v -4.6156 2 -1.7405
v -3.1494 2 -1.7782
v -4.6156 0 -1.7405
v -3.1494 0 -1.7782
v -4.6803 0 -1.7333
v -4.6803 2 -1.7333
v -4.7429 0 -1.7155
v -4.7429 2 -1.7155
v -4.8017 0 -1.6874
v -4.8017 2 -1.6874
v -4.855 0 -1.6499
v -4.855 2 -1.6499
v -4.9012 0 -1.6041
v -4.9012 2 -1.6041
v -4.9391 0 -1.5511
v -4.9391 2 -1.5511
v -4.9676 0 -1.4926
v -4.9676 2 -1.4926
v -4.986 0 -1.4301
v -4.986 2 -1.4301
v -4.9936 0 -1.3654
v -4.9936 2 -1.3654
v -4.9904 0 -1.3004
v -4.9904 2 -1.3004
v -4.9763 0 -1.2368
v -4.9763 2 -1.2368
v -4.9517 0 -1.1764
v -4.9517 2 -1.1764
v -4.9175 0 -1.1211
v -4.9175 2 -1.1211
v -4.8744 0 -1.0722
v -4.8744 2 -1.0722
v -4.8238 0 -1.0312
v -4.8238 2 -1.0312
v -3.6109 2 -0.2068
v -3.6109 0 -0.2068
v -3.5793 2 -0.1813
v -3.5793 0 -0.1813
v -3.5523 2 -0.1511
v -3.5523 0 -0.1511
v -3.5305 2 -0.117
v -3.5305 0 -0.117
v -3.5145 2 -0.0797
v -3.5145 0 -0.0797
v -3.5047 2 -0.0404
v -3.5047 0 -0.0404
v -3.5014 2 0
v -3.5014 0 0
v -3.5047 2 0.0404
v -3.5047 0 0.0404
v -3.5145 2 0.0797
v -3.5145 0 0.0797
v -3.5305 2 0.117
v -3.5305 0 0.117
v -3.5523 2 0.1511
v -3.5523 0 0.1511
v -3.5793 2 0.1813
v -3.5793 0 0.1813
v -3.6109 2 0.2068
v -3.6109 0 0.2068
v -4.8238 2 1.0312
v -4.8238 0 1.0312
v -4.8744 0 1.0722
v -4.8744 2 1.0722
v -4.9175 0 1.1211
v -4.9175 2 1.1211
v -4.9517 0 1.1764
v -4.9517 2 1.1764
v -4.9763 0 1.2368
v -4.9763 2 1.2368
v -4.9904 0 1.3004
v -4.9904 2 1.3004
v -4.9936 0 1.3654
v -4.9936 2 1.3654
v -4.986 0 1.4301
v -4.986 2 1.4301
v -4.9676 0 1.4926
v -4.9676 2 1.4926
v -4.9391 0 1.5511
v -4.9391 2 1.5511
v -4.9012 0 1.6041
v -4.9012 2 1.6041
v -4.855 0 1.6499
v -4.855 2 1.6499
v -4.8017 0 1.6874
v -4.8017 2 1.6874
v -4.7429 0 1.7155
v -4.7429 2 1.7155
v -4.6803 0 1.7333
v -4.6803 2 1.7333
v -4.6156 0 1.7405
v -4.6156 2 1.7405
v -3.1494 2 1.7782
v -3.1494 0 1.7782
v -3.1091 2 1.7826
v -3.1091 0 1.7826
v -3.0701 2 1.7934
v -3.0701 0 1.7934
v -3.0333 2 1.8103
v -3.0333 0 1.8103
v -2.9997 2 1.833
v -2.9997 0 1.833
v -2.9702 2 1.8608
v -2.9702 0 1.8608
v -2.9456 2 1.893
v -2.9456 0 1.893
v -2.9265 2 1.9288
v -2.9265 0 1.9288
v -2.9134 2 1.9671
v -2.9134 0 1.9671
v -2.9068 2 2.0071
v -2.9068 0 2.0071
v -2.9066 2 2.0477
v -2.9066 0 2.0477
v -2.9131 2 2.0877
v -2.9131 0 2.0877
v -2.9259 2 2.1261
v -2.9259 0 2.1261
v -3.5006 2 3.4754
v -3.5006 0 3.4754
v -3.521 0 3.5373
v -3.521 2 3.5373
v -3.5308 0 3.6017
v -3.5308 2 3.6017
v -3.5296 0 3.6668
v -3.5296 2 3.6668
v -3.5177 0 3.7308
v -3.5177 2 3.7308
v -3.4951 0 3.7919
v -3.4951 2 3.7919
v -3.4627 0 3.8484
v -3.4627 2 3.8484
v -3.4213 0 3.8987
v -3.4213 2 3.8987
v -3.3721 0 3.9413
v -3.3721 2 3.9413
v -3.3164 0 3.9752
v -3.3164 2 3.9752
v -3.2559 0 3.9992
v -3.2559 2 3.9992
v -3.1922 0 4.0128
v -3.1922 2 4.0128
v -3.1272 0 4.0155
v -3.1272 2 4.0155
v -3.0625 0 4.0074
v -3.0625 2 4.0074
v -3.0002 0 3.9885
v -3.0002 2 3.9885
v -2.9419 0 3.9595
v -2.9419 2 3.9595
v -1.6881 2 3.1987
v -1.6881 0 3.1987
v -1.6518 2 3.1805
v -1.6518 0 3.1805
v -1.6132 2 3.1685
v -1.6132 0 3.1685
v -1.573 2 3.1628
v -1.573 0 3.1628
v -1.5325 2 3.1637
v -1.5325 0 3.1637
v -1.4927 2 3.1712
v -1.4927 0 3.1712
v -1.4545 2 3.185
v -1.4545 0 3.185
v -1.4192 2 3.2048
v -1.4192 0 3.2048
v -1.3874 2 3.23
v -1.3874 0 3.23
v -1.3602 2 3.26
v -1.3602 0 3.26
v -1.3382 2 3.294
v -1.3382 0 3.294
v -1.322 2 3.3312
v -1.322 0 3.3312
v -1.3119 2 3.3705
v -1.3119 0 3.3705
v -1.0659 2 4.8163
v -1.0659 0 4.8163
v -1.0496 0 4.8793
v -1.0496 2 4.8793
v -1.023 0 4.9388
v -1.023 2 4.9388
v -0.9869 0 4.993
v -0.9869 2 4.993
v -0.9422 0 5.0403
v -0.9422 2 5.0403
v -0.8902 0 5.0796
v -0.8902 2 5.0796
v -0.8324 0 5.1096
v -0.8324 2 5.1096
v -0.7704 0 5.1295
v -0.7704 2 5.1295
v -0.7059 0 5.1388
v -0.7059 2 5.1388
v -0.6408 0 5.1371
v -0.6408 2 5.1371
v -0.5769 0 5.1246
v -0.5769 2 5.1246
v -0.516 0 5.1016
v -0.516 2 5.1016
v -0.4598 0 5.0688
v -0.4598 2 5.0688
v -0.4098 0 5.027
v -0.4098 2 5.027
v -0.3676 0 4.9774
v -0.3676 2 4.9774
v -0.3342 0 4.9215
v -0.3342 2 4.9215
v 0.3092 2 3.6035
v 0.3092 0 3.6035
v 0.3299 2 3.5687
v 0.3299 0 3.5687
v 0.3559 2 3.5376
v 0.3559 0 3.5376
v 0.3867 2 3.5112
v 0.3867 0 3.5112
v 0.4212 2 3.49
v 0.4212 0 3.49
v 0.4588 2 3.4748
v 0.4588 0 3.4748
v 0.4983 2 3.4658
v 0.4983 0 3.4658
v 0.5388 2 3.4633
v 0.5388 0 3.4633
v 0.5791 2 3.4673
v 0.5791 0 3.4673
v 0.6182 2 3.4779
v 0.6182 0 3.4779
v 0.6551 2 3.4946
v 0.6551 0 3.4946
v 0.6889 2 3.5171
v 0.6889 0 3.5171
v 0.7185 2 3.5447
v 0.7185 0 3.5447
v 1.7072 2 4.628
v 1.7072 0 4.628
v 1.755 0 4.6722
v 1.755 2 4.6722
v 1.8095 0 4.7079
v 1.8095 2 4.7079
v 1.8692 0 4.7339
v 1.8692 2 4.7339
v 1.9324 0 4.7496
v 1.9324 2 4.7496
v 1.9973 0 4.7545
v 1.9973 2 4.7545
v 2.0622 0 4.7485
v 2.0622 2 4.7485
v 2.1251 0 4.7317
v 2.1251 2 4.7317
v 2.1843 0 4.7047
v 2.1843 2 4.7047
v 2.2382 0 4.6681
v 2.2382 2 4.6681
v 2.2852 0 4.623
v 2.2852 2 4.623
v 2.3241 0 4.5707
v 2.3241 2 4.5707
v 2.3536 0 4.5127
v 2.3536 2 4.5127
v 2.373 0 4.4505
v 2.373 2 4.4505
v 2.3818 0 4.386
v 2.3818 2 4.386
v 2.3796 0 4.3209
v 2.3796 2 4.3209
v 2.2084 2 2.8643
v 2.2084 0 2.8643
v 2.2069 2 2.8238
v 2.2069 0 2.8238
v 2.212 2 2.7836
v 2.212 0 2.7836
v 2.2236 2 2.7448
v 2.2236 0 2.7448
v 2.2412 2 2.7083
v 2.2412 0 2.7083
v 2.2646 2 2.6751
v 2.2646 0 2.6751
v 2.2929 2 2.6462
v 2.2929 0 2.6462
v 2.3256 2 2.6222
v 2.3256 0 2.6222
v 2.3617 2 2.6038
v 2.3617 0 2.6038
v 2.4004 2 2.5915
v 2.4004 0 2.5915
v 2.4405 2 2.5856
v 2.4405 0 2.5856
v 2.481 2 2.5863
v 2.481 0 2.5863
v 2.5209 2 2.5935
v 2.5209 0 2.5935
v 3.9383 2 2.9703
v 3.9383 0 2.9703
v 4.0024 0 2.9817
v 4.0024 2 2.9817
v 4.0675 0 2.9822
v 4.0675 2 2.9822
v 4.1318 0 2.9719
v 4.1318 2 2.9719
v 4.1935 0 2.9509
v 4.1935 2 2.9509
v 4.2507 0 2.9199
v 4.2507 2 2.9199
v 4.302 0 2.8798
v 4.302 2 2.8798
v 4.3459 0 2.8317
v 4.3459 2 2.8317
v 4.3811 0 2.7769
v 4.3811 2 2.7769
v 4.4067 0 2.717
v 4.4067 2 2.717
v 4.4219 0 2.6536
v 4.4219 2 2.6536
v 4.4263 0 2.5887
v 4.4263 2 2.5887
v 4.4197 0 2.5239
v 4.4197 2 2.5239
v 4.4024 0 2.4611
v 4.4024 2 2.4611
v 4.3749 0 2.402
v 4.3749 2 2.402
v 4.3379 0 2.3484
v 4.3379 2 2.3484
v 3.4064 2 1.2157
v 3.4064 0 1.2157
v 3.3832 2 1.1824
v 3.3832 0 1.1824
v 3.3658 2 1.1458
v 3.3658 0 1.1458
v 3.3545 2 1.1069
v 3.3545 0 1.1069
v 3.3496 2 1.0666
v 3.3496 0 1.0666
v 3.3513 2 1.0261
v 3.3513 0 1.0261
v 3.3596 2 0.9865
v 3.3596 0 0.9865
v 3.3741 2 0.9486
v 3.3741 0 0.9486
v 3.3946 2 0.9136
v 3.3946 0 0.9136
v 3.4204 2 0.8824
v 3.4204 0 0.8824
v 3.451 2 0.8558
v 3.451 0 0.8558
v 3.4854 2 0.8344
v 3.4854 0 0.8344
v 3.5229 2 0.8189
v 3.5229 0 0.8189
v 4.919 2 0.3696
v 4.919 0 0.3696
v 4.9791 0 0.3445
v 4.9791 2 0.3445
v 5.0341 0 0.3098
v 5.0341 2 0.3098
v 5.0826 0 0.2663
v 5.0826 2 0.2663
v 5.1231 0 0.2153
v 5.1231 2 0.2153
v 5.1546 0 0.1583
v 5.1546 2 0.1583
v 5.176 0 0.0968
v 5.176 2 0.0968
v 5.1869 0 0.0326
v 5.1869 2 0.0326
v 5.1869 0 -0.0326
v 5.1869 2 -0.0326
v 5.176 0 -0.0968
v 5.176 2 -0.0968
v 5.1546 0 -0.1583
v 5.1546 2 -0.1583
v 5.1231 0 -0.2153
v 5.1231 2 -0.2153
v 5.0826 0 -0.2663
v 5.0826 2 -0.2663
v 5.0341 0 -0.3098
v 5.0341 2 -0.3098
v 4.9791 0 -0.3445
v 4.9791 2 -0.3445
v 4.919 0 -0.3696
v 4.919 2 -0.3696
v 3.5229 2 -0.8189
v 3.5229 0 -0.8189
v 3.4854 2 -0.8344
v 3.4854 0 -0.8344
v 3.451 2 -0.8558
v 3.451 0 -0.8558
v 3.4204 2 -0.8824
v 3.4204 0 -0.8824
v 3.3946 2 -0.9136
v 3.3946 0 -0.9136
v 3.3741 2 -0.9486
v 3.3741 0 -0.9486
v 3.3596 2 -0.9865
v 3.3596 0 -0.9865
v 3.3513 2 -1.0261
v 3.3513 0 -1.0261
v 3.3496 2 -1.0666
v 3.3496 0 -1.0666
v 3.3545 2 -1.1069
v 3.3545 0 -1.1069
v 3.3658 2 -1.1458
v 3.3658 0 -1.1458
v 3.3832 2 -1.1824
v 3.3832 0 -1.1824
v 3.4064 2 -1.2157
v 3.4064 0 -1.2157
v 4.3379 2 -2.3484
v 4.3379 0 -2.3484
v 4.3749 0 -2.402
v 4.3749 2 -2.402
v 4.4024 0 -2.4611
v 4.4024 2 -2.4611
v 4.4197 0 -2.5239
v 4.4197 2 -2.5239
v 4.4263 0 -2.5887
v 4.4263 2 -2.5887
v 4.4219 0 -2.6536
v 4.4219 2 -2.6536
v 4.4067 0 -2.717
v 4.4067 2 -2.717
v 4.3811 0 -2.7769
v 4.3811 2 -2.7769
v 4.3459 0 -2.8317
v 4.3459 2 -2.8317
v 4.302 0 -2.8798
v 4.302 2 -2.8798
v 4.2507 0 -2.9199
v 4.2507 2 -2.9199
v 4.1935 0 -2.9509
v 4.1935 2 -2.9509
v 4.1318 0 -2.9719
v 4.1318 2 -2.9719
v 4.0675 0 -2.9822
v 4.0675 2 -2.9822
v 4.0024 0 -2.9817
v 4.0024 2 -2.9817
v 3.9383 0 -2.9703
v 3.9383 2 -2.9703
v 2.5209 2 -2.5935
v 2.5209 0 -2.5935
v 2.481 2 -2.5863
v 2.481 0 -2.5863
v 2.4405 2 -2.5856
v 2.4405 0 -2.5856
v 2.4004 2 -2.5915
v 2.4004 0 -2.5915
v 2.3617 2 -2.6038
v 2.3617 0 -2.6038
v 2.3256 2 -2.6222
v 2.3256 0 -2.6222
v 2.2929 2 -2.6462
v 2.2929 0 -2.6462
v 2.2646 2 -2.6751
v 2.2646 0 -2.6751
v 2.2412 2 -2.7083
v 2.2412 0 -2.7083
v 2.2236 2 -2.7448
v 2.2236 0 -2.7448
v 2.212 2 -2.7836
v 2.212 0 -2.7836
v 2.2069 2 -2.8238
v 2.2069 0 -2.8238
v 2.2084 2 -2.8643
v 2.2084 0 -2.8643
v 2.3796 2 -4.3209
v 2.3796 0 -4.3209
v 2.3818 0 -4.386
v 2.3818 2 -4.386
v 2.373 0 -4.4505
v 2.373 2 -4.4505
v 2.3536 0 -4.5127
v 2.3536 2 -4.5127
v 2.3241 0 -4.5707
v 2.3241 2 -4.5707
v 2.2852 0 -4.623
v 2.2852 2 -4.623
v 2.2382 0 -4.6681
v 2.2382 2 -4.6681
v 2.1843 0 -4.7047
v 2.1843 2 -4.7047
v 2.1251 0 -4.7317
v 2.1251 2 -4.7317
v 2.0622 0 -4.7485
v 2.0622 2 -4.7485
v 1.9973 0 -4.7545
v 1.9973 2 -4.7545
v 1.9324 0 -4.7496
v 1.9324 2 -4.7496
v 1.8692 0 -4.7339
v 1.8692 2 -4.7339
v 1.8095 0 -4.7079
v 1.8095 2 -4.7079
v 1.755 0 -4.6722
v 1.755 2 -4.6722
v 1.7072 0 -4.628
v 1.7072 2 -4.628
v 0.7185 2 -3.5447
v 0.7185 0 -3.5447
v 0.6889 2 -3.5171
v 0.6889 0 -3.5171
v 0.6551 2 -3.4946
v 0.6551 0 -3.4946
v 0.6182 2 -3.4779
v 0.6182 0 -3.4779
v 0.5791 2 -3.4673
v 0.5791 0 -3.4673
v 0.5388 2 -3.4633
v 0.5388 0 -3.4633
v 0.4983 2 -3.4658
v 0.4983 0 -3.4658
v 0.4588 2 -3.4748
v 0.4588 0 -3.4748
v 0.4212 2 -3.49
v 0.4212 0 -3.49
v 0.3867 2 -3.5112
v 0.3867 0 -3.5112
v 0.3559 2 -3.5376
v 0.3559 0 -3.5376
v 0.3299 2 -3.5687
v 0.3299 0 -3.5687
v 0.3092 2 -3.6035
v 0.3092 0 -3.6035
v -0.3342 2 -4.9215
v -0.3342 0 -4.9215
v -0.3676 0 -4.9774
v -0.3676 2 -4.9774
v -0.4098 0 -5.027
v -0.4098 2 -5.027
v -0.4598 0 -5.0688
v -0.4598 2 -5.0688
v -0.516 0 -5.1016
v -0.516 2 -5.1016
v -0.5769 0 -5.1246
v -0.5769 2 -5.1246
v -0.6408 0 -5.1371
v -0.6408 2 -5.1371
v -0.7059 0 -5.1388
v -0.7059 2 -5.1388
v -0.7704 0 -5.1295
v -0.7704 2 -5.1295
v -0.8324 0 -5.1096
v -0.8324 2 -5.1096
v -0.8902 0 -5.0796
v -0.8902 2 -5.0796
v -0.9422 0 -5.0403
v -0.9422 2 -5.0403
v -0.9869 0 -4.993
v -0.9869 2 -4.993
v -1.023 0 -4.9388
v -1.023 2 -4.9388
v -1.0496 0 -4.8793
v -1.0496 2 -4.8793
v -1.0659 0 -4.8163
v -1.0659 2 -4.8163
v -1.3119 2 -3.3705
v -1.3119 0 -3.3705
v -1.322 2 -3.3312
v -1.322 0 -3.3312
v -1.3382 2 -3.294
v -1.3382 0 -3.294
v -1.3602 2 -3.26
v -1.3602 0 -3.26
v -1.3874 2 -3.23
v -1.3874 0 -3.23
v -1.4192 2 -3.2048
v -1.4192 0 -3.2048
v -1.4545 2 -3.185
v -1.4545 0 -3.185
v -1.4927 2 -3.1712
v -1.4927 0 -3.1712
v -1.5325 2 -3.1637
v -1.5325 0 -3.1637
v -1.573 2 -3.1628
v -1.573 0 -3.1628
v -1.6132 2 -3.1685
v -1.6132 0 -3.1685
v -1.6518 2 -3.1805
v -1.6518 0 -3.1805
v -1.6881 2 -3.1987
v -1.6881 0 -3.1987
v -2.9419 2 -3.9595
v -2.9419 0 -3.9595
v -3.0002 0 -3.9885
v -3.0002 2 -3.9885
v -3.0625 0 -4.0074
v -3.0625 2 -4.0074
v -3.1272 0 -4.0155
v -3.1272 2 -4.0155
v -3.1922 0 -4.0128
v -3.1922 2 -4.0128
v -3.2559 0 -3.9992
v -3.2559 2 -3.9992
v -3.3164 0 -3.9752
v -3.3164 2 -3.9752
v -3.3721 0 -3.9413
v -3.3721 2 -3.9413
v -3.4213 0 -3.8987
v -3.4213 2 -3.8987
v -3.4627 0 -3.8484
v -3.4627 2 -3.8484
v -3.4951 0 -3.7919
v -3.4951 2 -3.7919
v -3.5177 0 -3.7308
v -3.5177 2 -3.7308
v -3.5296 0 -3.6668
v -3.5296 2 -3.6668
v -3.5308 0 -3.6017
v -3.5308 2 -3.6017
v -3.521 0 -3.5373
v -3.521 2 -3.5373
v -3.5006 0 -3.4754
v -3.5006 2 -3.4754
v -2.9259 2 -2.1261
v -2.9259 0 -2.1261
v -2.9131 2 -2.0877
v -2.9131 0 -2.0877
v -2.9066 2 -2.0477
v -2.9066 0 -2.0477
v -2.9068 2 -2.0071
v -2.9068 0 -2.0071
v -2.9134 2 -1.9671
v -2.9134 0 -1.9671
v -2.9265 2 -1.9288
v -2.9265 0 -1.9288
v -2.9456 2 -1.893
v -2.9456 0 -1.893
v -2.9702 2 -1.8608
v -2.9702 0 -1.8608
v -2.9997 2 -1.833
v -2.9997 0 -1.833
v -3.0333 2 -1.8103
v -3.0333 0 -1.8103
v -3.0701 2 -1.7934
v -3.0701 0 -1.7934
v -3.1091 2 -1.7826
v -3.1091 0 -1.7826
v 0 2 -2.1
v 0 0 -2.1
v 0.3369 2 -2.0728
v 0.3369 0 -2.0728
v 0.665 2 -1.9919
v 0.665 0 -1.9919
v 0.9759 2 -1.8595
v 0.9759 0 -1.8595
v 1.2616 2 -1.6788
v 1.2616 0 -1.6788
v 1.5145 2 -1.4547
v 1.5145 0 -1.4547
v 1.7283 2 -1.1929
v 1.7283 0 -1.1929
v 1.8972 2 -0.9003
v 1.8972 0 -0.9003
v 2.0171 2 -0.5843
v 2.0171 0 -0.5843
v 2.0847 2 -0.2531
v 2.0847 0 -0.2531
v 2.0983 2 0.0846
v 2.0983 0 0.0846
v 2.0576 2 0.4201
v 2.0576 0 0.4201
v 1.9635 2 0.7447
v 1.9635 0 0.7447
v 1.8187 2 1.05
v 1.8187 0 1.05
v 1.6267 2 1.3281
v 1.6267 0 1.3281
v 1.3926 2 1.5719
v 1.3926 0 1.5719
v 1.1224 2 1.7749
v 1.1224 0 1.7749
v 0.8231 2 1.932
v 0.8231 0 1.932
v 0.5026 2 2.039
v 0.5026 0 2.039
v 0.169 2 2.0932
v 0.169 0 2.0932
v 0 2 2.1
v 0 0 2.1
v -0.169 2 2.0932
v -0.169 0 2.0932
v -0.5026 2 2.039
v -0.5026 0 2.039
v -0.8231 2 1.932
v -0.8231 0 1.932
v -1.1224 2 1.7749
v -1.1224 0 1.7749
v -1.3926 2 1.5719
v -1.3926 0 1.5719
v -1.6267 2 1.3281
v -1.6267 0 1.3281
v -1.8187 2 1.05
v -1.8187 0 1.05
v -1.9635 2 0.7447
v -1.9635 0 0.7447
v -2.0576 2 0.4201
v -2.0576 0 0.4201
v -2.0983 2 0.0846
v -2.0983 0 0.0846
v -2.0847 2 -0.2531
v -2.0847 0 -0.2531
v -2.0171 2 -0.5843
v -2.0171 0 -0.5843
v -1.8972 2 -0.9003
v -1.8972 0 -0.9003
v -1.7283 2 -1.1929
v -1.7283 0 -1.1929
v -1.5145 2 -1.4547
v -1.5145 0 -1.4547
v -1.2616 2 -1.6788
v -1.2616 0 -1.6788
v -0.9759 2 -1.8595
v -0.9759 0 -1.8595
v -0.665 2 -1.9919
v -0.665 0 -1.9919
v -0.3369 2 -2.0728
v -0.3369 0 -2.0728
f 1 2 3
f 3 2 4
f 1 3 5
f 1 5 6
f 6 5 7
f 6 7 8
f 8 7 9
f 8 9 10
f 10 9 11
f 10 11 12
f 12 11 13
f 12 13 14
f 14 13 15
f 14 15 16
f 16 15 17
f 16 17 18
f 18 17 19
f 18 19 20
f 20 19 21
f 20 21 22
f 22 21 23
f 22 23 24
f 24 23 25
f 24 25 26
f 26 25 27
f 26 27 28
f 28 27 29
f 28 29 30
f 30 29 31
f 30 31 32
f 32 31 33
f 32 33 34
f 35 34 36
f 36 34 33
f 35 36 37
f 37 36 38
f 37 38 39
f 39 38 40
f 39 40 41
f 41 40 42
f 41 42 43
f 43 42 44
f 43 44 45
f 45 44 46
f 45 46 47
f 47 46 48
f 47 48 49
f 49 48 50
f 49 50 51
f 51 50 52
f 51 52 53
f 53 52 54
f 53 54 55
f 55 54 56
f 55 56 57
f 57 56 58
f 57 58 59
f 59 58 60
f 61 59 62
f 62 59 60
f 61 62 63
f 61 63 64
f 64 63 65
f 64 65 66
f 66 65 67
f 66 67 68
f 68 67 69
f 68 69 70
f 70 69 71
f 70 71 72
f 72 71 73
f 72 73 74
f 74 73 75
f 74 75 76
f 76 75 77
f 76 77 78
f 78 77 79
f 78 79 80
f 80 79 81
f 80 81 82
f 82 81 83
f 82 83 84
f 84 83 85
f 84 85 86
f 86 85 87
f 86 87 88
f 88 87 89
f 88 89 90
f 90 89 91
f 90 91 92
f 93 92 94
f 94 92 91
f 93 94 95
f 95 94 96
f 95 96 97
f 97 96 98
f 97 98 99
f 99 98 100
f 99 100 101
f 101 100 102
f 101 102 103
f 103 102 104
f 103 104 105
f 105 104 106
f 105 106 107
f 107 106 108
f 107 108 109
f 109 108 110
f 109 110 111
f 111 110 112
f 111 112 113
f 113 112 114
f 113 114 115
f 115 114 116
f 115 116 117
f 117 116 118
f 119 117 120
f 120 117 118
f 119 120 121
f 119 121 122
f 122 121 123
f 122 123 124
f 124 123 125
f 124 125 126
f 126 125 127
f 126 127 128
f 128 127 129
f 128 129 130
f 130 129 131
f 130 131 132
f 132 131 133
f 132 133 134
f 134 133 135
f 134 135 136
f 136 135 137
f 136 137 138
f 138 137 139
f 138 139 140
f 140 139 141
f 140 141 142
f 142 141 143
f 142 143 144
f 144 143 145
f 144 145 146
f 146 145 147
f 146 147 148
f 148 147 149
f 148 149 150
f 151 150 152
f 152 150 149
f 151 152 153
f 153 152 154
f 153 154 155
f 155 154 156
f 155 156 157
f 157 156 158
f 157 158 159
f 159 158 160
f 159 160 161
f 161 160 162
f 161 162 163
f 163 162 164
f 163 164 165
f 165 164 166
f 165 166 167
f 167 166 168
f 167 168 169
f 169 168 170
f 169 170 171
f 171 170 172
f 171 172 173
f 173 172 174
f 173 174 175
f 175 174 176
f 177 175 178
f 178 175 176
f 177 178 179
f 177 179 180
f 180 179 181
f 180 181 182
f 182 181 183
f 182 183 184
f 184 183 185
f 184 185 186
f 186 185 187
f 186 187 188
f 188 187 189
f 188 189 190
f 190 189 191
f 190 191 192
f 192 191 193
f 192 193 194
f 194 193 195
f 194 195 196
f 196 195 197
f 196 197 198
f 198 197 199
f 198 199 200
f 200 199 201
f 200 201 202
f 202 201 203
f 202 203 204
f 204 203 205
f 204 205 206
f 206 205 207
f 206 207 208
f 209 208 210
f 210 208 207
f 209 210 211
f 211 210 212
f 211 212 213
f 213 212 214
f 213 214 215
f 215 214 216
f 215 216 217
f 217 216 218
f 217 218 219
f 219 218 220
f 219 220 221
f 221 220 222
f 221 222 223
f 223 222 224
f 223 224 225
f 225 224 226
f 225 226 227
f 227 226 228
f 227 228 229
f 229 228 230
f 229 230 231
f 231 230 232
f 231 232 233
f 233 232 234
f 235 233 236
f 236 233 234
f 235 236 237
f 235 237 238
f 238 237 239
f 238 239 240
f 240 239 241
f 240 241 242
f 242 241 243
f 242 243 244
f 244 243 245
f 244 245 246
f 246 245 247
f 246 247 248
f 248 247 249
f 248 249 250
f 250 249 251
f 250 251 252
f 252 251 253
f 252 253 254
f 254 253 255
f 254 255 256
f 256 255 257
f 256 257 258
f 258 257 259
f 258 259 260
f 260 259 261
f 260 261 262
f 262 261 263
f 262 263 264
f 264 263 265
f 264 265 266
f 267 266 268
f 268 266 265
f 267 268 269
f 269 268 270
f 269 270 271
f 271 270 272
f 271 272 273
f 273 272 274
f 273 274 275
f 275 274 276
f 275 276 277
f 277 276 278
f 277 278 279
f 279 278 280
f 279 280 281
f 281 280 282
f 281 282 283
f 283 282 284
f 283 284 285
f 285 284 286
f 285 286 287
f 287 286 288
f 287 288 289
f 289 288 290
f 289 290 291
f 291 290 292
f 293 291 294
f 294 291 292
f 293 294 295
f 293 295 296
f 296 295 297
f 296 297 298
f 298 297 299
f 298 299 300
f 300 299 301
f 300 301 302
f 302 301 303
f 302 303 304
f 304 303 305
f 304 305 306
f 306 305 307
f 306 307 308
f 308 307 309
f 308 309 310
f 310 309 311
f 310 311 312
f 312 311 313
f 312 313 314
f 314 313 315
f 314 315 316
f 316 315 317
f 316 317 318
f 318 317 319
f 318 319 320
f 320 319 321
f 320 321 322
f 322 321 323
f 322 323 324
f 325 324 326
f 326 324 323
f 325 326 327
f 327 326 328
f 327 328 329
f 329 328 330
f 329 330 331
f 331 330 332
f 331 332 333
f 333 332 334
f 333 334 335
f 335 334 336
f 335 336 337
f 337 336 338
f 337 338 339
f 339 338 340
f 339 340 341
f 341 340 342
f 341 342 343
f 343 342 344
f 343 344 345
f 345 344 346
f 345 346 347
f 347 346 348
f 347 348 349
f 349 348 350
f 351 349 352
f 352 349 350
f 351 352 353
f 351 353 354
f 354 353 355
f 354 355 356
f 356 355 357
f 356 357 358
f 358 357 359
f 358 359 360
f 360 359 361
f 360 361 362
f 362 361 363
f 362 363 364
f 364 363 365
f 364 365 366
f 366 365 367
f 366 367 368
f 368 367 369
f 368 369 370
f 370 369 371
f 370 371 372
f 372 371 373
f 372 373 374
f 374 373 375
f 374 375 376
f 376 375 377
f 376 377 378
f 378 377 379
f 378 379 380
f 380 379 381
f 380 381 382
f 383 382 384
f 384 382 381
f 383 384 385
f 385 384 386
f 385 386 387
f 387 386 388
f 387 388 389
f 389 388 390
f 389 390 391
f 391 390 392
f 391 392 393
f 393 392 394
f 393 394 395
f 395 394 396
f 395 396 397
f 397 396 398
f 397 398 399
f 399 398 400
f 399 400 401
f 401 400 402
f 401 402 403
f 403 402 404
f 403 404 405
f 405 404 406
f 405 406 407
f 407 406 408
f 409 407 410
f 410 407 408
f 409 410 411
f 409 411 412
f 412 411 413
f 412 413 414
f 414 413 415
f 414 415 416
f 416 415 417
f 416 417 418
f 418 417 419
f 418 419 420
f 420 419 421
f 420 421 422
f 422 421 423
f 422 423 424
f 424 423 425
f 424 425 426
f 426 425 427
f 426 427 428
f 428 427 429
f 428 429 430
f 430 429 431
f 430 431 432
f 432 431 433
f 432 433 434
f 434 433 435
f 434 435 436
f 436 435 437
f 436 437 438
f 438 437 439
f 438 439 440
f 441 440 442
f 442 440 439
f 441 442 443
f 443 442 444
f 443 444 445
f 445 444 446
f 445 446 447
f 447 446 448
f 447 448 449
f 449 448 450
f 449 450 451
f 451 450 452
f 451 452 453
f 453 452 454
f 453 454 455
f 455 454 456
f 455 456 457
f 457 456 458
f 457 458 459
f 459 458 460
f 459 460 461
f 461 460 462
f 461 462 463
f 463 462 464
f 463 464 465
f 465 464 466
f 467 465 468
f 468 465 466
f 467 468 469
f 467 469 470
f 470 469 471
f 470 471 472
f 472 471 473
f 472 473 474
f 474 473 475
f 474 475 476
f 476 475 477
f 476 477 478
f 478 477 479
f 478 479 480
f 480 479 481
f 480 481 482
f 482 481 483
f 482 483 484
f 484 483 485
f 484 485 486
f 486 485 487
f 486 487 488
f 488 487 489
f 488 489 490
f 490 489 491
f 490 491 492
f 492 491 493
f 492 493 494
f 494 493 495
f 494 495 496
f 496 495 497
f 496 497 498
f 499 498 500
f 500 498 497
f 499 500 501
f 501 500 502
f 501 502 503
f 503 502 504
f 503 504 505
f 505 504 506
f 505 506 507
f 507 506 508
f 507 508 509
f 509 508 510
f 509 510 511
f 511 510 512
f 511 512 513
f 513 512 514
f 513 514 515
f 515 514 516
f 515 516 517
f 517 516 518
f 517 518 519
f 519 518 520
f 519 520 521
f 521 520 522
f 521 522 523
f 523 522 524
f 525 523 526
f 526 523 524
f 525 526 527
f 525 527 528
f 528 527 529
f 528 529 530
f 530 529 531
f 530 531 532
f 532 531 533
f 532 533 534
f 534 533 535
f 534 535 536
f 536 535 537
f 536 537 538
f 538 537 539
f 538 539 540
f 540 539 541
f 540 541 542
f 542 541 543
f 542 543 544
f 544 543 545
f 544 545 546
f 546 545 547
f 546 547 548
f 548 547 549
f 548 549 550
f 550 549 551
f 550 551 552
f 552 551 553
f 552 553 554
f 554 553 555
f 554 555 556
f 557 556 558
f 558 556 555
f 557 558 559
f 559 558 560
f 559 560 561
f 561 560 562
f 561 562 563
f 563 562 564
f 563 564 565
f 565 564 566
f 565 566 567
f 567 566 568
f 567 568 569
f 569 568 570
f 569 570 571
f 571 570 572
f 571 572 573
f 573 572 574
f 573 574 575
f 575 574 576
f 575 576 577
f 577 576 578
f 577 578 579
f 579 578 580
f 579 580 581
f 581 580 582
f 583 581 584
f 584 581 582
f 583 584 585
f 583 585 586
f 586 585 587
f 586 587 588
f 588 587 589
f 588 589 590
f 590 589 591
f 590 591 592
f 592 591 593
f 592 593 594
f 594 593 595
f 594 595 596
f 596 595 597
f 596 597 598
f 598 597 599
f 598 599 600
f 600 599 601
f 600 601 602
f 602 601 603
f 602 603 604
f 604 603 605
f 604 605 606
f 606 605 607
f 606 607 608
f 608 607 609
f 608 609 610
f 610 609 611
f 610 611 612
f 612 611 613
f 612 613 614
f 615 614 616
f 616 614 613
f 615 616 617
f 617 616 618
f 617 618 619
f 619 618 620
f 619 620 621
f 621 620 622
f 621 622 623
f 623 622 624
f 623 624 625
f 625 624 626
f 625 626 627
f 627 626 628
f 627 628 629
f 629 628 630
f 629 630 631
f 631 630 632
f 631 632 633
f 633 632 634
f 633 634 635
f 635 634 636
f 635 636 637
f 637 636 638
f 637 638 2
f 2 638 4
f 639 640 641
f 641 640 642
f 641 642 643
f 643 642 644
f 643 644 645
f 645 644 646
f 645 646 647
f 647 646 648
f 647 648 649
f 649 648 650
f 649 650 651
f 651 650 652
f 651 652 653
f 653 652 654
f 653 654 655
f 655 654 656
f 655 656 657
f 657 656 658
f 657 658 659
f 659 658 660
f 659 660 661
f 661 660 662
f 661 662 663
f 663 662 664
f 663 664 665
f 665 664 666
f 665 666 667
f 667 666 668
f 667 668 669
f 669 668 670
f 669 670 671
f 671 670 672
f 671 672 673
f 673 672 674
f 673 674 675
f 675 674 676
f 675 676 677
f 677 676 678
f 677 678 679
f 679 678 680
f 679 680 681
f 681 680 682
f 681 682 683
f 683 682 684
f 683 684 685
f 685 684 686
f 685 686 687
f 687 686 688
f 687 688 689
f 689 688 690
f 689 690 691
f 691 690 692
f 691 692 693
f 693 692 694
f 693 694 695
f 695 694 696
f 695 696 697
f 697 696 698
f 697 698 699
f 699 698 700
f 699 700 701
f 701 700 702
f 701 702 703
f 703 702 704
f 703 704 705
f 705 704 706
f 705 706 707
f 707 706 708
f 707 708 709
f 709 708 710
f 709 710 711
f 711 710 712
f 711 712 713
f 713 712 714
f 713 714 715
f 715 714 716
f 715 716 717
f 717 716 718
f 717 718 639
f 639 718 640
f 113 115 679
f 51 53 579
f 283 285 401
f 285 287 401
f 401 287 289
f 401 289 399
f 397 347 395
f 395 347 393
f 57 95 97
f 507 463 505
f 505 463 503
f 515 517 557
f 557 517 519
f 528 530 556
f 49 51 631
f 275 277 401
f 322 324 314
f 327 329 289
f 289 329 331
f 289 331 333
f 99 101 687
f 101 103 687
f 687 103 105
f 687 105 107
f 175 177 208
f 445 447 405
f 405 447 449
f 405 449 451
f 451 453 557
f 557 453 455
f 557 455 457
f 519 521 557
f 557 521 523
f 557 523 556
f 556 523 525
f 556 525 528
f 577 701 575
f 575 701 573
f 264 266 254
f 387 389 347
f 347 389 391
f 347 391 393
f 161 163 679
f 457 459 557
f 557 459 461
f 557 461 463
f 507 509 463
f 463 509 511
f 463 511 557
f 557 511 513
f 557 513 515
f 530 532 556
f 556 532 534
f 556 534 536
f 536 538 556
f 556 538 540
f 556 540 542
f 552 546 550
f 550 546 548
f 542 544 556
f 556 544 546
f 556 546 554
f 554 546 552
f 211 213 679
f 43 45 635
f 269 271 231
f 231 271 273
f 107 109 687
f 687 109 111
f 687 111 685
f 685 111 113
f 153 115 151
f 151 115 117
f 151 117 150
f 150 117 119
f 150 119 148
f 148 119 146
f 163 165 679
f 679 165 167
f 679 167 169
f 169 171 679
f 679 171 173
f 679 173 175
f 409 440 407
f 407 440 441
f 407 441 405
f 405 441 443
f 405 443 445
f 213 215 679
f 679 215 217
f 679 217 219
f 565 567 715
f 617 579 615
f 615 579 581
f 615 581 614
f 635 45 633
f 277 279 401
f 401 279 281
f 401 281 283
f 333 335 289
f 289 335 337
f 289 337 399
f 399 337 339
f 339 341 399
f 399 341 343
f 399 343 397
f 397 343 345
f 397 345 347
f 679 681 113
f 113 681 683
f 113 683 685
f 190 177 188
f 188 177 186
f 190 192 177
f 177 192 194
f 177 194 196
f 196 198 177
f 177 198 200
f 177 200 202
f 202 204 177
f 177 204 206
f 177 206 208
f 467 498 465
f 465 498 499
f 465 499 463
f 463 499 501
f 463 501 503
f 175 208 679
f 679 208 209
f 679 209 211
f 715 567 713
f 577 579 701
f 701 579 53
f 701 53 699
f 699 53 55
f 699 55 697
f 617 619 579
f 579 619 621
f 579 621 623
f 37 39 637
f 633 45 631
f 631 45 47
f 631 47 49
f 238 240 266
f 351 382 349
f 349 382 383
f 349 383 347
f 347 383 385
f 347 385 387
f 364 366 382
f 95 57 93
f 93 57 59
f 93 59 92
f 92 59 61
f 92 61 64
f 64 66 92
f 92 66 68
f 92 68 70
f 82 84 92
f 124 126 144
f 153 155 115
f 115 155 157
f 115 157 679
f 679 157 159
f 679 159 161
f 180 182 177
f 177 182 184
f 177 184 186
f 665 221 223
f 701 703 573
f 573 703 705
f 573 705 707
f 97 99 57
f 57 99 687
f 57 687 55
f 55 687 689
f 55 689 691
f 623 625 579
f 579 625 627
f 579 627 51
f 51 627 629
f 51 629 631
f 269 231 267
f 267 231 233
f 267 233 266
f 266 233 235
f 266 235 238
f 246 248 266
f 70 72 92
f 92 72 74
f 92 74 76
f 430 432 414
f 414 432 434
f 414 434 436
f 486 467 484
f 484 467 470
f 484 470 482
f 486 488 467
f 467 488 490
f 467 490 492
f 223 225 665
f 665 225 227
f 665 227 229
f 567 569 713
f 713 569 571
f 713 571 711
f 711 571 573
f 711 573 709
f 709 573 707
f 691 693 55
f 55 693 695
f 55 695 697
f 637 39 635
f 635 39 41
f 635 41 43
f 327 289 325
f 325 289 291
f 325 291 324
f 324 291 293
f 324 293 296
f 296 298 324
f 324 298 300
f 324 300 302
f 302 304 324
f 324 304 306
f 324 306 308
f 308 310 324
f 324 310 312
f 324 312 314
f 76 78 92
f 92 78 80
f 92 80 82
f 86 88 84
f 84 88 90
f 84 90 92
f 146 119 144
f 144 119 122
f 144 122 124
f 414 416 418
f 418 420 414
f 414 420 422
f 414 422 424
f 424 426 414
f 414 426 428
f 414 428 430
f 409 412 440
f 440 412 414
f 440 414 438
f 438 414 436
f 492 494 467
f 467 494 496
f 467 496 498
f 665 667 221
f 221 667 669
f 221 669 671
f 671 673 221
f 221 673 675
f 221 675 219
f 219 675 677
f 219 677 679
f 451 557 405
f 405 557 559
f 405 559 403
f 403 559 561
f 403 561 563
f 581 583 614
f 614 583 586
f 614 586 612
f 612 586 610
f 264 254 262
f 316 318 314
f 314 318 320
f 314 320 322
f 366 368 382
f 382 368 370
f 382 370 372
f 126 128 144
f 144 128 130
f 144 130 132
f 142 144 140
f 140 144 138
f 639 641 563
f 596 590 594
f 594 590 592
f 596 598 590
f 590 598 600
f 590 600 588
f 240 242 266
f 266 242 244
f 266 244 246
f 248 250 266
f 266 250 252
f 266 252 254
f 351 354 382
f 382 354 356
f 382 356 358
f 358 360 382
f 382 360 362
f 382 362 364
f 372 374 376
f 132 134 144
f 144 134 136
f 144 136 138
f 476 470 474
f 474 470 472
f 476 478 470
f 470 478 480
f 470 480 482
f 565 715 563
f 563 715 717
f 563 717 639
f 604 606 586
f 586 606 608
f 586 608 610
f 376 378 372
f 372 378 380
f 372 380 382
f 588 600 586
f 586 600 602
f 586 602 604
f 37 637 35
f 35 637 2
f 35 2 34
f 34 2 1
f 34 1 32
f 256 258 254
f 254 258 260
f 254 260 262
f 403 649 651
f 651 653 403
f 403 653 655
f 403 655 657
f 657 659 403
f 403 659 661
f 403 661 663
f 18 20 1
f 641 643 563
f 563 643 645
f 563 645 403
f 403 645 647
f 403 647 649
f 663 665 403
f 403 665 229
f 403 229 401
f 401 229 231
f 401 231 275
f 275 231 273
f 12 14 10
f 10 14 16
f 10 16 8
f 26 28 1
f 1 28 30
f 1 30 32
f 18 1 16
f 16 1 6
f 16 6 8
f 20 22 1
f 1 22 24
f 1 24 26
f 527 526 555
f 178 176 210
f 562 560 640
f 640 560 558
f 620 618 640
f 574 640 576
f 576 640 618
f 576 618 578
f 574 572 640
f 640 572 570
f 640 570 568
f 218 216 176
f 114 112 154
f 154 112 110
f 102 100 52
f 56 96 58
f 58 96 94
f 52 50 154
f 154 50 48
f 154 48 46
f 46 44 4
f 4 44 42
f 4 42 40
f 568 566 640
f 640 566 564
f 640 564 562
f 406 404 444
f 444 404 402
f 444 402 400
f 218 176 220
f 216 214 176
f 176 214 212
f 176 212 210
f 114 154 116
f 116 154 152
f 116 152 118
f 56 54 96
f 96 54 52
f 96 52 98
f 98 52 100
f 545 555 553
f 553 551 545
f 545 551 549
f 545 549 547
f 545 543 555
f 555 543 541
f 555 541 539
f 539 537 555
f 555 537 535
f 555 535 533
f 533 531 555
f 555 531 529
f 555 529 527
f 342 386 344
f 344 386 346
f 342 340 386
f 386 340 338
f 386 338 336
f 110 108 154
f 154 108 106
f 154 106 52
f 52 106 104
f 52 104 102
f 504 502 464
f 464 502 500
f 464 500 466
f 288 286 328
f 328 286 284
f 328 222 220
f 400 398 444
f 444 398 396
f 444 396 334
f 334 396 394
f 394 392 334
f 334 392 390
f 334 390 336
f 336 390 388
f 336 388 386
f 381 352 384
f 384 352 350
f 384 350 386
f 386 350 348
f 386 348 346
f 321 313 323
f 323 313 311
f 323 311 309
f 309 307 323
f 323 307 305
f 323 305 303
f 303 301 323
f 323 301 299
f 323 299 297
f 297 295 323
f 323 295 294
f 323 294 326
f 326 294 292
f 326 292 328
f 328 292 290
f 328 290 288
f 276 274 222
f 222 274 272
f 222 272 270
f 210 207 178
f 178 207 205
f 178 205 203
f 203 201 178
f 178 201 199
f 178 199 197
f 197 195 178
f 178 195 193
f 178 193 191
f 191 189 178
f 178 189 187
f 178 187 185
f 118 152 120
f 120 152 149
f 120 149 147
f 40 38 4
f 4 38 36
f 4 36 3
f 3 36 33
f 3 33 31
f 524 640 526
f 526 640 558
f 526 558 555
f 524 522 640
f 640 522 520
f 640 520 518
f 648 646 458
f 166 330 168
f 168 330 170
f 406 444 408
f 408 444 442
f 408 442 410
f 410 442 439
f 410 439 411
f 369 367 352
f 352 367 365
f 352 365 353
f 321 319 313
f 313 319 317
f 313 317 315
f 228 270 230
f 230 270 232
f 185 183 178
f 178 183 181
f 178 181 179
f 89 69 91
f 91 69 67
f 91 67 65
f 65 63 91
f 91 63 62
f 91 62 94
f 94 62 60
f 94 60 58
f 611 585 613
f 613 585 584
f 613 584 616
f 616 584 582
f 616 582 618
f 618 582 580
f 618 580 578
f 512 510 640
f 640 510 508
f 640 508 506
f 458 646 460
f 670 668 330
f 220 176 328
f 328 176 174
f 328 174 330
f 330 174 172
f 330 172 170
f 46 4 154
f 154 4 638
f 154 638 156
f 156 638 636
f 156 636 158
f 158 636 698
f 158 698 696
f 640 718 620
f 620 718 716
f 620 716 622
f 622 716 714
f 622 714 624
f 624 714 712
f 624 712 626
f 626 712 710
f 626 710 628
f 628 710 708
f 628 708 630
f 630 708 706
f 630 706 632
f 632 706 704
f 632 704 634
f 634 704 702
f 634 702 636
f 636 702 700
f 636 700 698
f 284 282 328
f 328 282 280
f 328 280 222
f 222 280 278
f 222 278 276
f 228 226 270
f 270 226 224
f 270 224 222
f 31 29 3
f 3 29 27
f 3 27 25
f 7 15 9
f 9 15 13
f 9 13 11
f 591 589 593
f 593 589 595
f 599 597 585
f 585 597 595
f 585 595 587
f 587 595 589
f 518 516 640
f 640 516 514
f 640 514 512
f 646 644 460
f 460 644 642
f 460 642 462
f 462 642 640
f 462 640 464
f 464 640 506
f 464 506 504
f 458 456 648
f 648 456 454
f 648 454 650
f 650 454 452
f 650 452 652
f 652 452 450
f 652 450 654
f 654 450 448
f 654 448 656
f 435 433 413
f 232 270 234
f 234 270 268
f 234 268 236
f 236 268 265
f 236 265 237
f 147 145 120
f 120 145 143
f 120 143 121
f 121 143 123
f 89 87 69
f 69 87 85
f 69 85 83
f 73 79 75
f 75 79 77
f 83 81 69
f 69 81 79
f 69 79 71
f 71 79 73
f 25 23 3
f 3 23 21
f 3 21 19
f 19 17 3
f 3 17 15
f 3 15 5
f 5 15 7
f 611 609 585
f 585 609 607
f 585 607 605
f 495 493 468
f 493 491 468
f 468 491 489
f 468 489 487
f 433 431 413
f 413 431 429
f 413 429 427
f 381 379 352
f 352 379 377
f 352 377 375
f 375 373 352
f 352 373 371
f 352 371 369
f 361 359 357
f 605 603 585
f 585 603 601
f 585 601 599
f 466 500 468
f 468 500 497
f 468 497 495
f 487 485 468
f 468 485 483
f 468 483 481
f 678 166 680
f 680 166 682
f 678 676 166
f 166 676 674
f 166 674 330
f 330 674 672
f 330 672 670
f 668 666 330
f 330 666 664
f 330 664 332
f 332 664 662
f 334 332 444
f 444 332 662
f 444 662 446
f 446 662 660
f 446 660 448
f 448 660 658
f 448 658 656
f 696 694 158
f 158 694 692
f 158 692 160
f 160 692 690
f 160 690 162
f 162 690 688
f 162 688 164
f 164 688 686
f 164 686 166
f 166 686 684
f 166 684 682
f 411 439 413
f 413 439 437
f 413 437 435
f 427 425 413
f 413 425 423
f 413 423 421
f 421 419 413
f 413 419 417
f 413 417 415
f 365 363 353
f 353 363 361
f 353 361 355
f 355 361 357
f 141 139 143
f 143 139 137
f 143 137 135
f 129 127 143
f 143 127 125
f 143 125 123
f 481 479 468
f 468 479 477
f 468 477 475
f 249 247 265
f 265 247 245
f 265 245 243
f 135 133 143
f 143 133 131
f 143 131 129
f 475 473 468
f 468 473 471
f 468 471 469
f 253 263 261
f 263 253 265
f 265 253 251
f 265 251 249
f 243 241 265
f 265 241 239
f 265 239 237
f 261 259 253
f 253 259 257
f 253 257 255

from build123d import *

# Parameters (mm, degrees)
SKETCH1_R           = 3.5014085
SKETCH1_R_2         = 2.1
BOSS_EXTRUDE3_DEPTH = 2


with BuildPart() as part:
    # Sketch1 → Boss-Extrude3 (new body)
    # profile 1 of 12: a face of its own
    with BuildSketch(Plane(origin=(0, 0, 0), x_dir=(1, 0, 0), z_dir=(0, 1, 0))):
        with BuildLine():
            ThreePointArc((-3.5014085, 0), (-3.359576854, 0.986460769), (-2.945572271, 1.893004354))
            ThreePointArc((-2.945572271, 1.893004354), (-3.033257635, 1.810305959), (-3.149447141, 1.778247481))
            Line((-3.149447141, 1.778247481), (-4.615566287, 1.740476447))
            ThreePointArc((-4.615566287, 1.740476447), (-4.978126808, 1.461709916), (-4.823834054, 1.03118157))
            Line((-4.823834054, 1.03118157), (-3.610876706, 0.206762702))
            ThreePointArc((-3.610876706, 0.206762702), (-3.530463995, 0.116976603), (-3.5014085, 0))
        make_face()
    # profile 2 of 12: a face of its own
    with BuildSketch(Plane(origin=(0, 0, 0), x_dir=(1, 0, 0), z_dir=(0, 1, 0))):
        with BuildLine():
            ThreePointArc((-2.945572271, 1.893004354), (-2.29293494, 2.646187984), (-1.454537658, 3.1849932))
            ThreePointArc((-1.454537658, 3.1849932), (-1.573013407, 3.162829171), (-1.688090363, 3.198676652))
            Line((-1.688090363, 3.198676652), (-2.941888835, 3.95954549))
            ThreePointArc((-2.941888835, 3.95954549), (-3.39760672, 3.921047178), (-3.500568593, 3.475446725))
            Line((-3.500568593, 3.475446725), (-2.925878429, 2.126127187))
            ThreePointArc((-2.925878429, 2.126127187), (-2.906772982, 2.007119921), (-2.945572271, 1.893004354))
        make_face()
    # profile 3 of 12: a face of its own
    with BuildSketch(Plane(origin=(0, 0, 0), x_dir=(1, 0, 0), z_dir=(0, 1, 0))):
        with BuildLine():
            ThreePointArc((-1.454537658, 3.1849932), (-0.498302384, 3.46576921), (0.498302384, 3.46576921))
            ThreePointArc((0.498302384, 3.46576921), (0.386651462, 3.511176468), (0.309223179, 3.603548588))
            Line((0.309223179, 3.603548588), (-0.334182465, 4.921486817))
            ThreePointArc((-0.334182465, 4.921486817), (-0.738370505, 5.135479665), (-1.065897337, 4.816282101))
            Line((-1.065897337, 4.816282101), (-1.311934425, 3.370461313))
            ThreePointArc((-1.311934425, 3.370461313), (-1.360202085, 3.260016845), (-1.454537658, 3.1849932))
        make_face()
    # profile 4 of 12: a face of its own
    with BuildSketch(Plane(origin=(0, 0, 0), x_dir=(1, 0, 0), z_dir=(0, 1, 0))):
        with BuildLine():
            ThreePointArc((0.498302384, 3.46576921), (1.454537658, 3.1849932), (2.29293494, 2.646187984))
            ThreePointArc((2.29293494, 2.646187984), (2.223557225, 2.744750046), (2.208360546, 2.864319308))
            Line((2.208360546, 2.864319308), (2.379624476, 4.320890853))
            ThreePointArc((2.379624476, 4.320890853), (2.155293128, 4.719433645), (1.707188792, 4.62798194))
            Line((1.707188792, 4.62798194), (0.71853949, 3.544697787))
            ThreePointArc((0.71853949, 3.544697787), (0.618223363, 3.477881456), (0.498302384, 3.46576921))
        make_face()
    # profile 5 of 12: a face of its own
    with BuildSketch(Plane(origin=(0, 0, 0), x_dir=(1, 0, 0), z_dir=(0, 1, 0))):
        with BuildLine():
            ThreePointArc((2.29293494, 2.646187984), (2.945572271, 1.893004354), (3.359576854, 0.986460769))
            ThreePointArc((3.359576854, 0.986460769), (3.354499279, 1.106884877), (3.406359043, 1.215688886))
            Line((3.406359043, 1.215688886), (4.33791746, 2.348442573))
            ThreePointArc((4.33791746, 2.348442573), (4.364666422, 2.805000788), (3.938254542, 2.970330213))
            Line((3.938254542, 2.970330213), (2.520882193, 2.593517759))
            ThreePointArc((2.520882193, 2.593517759), (2.400367261, 2.591543277), (2.29293494, 2.646187984))
        make_face()
    # profile 6 of 12: a face of its own
    with BuildSketch(Plane(origin=(0, 0, 0), x_dir=(1, 0, 0), z_dir=(0, 1, 0))):
        with BuildLine():
            Line((4.918952301, 0.369619631), (3.522862612, 0.818914167))
            ThreePointArc((3.522862612, 0.818914167), (3.420411514, 0.882408419), (3.359576854, 0.986460769))
            ThreePointArc((3.359576854, 0.986460769), (3.46576921, 0.498302384), (3.5014085, 0))
            ThreePointArc((3.5014085, 0), (3.46576921, -0.498302384), (3.359576854, -0.986460769))
            ThreePointArc((3.359576854, -0.986460769), (3.420411514, -0.882408419), (3.522862612, -0.818914167))
            Line((3.522862612, -0.818914167), (4.918952301, -0.369619631))
            ThreePointArc((4.918952301, -0.369619631), (5.188288966, 0), (4.918952301, 0.369619631))
        make_face()
    # profile 7 of 12: a face of its own
    with BuildSketch(Plane(origin=(0, 0, 0), x_dir=(1, 0, 0), z_dir=(0, 1, 0))):
        with BuildLine():
            ThreePointArc((3.406359043, -1.215688886), (3.354499279, -1.106884877), (3.359576854, -0.986460769))
            ThreePointArc((3.359576854, -0.986460769), (2.945572271, -1.893004354), (2.29293494, -2.646187984))
            ThreePointArc((2.29293494, -2.646187984), (2.400367261, -2.591543277), (2.520882193, -2.593517759))
            Line((2.520882193, -2.593517759), (3.938254542, -2.970330213))
            ThreePointArc((3.938254542, -2.970330213), (4.364666422, -2.805000788), (4.33791746, -2.348442573))
            Line((4.33791746, -2.348442573), (3.406359043, -1.215688886))
        make_face()
    # profile 8 of 12: a face of its own
    with BuildSketch(Plane(origin=(0, 0, 0), x_dir=(1, 0, 0), z_dir=(0, 1, 0))):
        with BuildLine():
            ThreePointArc((2.208360546, -2.864319308), (2.223557225, -2.744750046), (2.29293494, -2.646187984))
            ThreePointArc((2.29293494, -2.646187984), (1.454537658, -3.1849932), (0.498302384, -3.46576921))
            ThreePointArc((0.498302384, -3.46576921), (0.618223363, -3.477881456), (0.71853949, -3.544697787))
            Line((0.71853949, -3.544697787), (1.707188792, -4.62798194))
            ThreePointArc((1.707188792, -4.62798194), (2.155293128, -4.719433645), (2.379624476, -4.320890853))
            Line((2.379624476, -4.320890853), (2.208360546, -2.864319308))
        make_face()
    # profile 9 of 12: a face of its own
    with BuildSketch(Plane(origin=(0, 0, 0), x_dir=(1, 0, 0), z_dir=(0, 1, 0))):
        with BuildLine():
            ThreePointArc((0.309223179, -3.603548588), (0.386651462, -3.511176468), (0.498302384, -3.46576921))
            ThreePointArc((0.498302384, -3.46576921), (-0.498302384, -3.46576921), (-1.454537658, -3.1849932))
            ThreePointArc((-1.454537658, -3.1849932), (-1.360202085, -3.260016845), (-1.311934425, -3.370461313))
            Line((-1.311934425, -3.370461313), (-1.065897337, -4.816282101))
            ThreePointArc((-1.065897337, -4.816282101), (-0.738370505, -5.135479665), (-0.334182465, -4.921486817))
            Line((-0.334182465, -4.921486817), (0.309223179, -3.603548588))
        make_face()
    # profile 10 of 12: a face of its own
    with BuildSketch(Plane(origin=(0, 0, 0), x_dir=(1, 0, 0), z_dir=(0, 1, 0))):
        with BuildLine():
            ThreePointArc((-1.688090363, -3.198676652), (-1.573013407, -3.162829171), (-1.454537658, -3.1849932))
            ThreePointArc((-1.454537658, -3.1849932), (-2.29293494, -2.646187984), (-2.945572271, -1.893004354))
            ThreePointArc((-2.945572271, -1.893004354), (-2.906772982, -2.007119921), (-2.925878429, -2.126127187))
            Line((-2.925878429, -2.126127187), (-3.500568593, -3.475446725))
            ThreePointArc((-3.500568593, -3.475446725), (-3.39760672, -3.921047178), (-2.941888835, -3.95954549))
            Line((-2.941888835, -3.95954549), (-1.688090363, -3.198676652))
        make_face()
    # profile 11 of 12: a face of its own
    with BuildSketch(Plane(origin=(0, 0, 0), x_dir=(1, 0, 0), z_dir=(0, 1, 0))):
        with BuildLine():
            ThreePointArc((-2.945572271, -1.893004354), (-3.359576854, -0.986460769), (-3.5014085, 0))
            ThreePointArc((-3.5014085, 0), (-3.530463995, -0.116976603), (-3.610876706, -0.206762702))
            Line((-3.610876706, -0.206762702), (-4.823834054, -1.03118157))
            ThreePointArc((-4.823834054, -1.03118157), (-4.978126808, -1.461709916), (-4.615566287, -1.740476447))
            Line((-4.615566287, -1.740476447), (-3.149447141, -1.778247481))
            ThreePointArc((-3.149447141, -1.778247481), (-3.033257635, -1.810305959), (-2.945572271, -1.893004354))
        make_face()
    # profile 12 of 12: a face of its own
    with BuildSketch(Plane(origin=(0, 0, 0), x_dir=(1, 0, 0), z_dir=(0, 1, 0))):
        Circle(SKETCH1_R)
        with Locations(Location((0, 0, 0), (0, 0, 270))):
            Circle(SKETCH1_R_2, mode=Mode.SUBTRACT)
    extrude(amount=BOSS_EXTRUDE3_DEPTH)


solid = part.part
